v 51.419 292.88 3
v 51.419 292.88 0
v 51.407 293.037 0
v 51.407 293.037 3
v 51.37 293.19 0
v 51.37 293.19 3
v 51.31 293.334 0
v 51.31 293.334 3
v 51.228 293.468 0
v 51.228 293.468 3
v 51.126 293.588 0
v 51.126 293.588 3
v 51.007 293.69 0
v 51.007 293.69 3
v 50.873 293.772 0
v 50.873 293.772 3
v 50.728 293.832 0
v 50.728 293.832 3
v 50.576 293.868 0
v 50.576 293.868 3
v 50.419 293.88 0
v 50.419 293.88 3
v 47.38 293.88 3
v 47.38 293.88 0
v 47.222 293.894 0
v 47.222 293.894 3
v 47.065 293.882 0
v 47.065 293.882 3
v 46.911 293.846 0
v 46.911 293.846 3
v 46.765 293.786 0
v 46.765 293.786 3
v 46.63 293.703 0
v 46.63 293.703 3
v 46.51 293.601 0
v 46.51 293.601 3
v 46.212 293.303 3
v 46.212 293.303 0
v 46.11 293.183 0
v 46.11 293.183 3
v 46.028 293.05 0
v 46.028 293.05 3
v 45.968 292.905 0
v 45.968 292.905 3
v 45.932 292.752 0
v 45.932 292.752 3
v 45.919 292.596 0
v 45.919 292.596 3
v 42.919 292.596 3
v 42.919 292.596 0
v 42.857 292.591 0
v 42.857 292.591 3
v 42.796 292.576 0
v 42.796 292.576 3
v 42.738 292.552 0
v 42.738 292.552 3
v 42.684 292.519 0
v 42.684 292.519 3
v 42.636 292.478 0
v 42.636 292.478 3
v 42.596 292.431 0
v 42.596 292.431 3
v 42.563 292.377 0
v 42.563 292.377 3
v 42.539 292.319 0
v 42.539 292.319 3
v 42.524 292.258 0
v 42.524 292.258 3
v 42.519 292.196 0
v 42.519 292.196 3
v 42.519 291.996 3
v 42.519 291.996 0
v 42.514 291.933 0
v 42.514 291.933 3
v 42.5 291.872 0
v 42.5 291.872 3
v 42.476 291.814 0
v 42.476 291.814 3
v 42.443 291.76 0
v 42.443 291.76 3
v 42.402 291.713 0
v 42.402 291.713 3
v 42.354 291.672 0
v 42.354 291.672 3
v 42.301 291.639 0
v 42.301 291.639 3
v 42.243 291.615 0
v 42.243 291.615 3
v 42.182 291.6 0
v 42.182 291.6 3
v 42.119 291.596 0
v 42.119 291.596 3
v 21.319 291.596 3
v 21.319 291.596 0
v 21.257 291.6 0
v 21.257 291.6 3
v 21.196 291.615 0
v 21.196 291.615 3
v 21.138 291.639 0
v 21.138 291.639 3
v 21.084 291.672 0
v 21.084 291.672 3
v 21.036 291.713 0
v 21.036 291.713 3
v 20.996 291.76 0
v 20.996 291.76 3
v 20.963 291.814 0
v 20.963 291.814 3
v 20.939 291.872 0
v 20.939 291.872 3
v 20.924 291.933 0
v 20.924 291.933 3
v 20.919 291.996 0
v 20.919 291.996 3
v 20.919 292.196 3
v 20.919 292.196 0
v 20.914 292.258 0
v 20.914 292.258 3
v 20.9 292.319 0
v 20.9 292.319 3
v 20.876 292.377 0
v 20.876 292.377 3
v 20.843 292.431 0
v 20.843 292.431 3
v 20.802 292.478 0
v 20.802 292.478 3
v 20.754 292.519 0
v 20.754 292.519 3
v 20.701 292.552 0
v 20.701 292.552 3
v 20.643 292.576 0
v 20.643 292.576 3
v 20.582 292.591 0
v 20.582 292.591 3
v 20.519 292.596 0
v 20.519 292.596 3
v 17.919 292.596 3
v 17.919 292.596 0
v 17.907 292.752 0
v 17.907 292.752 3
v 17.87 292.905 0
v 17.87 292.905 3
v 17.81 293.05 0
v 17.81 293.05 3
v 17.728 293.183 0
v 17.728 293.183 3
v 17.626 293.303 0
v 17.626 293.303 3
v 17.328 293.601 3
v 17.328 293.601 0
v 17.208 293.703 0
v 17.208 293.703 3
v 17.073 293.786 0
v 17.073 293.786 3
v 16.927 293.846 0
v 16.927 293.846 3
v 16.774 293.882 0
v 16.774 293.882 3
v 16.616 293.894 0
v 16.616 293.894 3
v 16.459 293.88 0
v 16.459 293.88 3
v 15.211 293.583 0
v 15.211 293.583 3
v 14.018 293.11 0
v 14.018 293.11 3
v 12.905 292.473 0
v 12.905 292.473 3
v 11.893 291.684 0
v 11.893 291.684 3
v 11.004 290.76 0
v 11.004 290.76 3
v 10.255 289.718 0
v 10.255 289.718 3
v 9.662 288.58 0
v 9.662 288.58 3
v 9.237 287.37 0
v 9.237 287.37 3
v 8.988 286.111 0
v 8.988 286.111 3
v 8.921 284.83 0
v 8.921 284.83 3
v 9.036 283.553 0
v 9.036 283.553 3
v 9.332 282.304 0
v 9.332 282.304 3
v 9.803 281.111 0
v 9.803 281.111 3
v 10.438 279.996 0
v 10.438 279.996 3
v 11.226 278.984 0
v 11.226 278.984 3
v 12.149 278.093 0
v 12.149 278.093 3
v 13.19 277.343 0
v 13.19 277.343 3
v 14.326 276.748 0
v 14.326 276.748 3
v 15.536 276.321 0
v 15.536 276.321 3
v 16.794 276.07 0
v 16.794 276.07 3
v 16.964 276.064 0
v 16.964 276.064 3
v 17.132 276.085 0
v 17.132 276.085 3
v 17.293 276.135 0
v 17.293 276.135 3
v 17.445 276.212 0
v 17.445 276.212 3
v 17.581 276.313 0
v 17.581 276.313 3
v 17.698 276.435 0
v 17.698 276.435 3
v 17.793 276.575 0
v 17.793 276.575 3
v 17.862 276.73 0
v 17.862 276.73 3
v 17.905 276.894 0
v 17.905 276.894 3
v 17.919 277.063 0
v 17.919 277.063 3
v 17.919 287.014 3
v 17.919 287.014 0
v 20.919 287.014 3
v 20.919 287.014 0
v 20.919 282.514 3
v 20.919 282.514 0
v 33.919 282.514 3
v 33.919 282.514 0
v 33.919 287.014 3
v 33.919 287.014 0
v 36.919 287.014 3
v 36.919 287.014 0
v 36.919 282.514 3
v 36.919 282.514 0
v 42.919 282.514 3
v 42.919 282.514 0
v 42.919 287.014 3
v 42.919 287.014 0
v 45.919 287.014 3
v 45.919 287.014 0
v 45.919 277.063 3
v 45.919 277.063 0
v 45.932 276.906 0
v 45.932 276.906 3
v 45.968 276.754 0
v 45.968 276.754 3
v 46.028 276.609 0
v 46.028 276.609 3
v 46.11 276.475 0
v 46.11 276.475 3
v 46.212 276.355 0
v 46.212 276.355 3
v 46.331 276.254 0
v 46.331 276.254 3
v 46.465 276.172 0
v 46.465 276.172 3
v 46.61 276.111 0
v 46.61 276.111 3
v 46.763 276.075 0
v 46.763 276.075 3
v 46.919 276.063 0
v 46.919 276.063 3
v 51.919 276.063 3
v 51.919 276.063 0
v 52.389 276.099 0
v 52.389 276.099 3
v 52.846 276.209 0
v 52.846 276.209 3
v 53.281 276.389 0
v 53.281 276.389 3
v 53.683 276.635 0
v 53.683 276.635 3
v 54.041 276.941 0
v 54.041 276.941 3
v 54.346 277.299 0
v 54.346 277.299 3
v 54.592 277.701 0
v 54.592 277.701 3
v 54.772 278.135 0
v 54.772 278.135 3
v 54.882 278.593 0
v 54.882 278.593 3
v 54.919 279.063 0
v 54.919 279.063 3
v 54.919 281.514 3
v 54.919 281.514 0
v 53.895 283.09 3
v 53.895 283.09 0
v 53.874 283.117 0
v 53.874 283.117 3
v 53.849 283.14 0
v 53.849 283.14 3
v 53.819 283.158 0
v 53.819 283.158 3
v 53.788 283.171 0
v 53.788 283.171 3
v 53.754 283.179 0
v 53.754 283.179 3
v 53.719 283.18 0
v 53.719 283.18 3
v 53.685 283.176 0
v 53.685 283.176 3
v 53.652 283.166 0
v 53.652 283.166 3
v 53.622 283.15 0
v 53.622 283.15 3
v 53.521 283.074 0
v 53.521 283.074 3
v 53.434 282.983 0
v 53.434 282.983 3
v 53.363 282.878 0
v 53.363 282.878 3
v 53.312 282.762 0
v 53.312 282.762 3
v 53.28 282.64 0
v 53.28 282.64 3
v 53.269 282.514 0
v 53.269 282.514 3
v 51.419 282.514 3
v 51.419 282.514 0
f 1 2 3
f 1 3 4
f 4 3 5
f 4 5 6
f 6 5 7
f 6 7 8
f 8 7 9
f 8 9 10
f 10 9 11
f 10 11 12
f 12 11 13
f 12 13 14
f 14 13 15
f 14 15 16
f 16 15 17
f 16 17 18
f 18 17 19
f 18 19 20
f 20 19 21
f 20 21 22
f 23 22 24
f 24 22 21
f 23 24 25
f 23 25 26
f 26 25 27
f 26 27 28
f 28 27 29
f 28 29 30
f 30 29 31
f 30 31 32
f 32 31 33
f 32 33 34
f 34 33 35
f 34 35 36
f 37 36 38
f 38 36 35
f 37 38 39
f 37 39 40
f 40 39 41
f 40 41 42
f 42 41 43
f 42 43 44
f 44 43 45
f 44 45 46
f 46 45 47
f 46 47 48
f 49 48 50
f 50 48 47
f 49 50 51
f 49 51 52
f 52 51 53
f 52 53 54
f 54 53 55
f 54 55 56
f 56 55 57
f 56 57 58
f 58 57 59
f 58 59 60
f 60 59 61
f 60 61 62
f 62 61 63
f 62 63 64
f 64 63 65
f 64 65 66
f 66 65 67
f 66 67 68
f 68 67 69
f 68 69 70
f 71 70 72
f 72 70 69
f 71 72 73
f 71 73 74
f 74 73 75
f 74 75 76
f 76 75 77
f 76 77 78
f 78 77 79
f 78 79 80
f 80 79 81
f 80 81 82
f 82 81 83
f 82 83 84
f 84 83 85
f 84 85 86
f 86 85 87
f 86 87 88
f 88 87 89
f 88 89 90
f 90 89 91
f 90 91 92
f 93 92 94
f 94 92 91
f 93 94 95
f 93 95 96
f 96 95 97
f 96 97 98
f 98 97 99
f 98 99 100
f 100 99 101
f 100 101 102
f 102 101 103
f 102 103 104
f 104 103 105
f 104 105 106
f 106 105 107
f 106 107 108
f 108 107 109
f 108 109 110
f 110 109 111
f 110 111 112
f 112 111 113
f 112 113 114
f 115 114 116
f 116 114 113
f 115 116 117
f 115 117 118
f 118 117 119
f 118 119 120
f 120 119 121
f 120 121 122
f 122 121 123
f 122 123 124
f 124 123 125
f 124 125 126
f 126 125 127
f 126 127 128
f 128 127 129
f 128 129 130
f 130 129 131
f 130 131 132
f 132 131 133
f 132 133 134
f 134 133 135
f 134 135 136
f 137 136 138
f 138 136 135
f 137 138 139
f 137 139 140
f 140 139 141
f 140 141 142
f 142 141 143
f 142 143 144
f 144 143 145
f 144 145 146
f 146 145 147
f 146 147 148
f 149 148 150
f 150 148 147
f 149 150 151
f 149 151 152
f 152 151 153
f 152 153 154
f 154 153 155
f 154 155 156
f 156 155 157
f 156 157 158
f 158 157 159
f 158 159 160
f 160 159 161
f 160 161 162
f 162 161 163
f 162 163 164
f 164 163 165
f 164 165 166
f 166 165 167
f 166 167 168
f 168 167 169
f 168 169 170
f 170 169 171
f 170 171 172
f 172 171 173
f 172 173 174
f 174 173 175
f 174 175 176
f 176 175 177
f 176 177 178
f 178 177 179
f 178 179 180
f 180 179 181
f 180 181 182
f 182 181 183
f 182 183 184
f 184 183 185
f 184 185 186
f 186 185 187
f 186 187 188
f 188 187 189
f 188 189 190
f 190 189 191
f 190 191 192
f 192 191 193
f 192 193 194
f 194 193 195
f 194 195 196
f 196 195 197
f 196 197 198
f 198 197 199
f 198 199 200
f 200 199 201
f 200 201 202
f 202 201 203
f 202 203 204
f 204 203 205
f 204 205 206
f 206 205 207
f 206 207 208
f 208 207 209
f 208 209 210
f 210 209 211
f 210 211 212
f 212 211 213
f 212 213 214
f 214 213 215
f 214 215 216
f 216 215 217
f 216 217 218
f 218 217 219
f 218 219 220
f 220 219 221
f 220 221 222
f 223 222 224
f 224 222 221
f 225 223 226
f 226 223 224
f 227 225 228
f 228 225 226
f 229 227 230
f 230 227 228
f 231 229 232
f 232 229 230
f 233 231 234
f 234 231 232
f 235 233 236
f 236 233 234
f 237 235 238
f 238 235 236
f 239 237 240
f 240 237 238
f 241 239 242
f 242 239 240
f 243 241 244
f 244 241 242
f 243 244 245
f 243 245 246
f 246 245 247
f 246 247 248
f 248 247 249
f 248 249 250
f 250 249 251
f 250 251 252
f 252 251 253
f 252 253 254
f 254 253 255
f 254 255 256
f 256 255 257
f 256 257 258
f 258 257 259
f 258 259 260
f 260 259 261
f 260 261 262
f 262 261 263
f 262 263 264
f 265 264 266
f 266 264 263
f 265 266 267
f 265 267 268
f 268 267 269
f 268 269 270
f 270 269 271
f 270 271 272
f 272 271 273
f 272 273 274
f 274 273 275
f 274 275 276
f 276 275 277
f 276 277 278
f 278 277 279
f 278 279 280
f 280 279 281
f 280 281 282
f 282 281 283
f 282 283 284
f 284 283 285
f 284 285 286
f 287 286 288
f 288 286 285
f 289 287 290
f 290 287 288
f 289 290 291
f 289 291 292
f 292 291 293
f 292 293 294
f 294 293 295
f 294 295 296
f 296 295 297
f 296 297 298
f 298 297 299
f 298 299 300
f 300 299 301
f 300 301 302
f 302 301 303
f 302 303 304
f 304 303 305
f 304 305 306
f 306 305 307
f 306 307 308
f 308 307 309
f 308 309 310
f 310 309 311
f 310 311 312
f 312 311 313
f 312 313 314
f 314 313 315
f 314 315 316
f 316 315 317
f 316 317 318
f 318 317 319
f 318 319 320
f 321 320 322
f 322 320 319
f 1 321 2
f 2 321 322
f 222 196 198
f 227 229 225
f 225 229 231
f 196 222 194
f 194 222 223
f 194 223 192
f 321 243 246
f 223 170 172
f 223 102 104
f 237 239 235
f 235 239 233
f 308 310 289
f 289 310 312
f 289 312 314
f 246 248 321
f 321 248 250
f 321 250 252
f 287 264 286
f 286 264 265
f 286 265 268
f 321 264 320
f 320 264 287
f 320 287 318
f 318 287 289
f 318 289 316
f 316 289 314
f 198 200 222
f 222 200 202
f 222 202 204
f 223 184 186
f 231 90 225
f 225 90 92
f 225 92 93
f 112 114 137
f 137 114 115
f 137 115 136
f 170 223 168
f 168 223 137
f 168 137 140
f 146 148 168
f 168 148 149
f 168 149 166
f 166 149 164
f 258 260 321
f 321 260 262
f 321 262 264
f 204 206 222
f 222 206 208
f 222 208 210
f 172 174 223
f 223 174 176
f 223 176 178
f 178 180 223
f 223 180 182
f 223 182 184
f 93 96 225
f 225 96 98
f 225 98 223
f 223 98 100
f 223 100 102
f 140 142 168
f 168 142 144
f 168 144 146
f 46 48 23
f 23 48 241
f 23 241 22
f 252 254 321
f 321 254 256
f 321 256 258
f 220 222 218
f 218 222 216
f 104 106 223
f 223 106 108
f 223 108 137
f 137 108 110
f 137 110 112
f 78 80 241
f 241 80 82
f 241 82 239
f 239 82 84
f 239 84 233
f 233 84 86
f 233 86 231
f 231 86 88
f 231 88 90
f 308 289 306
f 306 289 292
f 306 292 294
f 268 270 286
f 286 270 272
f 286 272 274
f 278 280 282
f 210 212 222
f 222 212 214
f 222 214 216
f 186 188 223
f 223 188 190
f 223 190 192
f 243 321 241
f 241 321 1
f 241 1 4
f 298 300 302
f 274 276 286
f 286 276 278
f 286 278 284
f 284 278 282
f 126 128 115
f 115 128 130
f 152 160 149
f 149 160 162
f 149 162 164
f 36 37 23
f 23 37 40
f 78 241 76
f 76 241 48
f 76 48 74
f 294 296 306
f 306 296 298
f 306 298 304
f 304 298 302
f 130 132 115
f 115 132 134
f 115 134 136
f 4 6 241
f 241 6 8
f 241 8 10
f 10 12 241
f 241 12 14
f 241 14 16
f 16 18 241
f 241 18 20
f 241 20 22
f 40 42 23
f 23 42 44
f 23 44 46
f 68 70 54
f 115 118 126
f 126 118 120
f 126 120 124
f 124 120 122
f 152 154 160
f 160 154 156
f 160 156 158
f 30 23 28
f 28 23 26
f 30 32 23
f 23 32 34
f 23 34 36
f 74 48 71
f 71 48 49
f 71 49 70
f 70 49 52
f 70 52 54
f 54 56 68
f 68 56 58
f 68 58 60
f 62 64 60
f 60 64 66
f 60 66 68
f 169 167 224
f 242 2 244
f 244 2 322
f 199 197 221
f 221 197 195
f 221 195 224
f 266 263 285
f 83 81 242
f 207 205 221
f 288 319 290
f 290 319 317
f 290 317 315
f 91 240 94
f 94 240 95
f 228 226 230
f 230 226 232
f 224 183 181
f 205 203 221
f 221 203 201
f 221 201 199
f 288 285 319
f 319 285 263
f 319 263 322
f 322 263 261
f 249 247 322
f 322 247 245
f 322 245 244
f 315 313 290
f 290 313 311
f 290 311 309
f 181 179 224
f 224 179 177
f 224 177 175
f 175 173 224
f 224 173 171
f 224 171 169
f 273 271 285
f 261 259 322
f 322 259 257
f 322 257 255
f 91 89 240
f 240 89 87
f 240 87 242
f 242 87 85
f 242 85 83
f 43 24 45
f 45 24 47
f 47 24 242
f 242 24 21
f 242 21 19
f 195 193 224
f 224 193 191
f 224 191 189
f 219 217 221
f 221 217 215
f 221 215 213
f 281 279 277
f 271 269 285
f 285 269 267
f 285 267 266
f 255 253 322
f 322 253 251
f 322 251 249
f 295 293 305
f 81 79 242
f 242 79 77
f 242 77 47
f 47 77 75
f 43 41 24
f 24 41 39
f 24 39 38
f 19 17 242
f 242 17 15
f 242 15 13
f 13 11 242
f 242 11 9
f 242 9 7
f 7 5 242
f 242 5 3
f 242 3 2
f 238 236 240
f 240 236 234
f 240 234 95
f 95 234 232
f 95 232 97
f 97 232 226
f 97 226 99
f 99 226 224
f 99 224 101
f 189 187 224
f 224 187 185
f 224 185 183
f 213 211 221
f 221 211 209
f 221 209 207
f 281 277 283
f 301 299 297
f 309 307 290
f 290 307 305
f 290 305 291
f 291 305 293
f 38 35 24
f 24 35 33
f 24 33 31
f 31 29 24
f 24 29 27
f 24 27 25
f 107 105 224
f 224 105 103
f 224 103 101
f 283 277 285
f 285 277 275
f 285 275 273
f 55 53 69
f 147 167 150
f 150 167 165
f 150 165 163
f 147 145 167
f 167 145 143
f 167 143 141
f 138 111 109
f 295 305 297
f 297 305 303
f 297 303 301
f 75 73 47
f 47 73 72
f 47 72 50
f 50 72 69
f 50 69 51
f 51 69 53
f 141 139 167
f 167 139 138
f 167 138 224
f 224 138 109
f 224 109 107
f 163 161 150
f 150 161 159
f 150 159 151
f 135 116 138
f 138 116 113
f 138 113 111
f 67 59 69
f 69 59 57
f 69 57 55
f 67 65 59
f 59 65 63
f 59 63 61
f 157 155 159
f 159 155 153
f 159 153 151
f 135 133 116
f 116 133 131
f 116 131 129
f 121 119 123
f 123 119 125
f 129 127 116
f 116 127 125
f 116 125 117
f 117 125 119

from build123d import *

# Parameters (mm, degrees)
SALIENTE_EXTRUIR1_DEPTH = 3


with BuildPart() as part:
    # Model → Saliente-Extruir1 (new body)
    with BuildSketch(Plane.XY):
        with BuildLine():
            Line((47.379734173, 293.880494369), (50.419280292, 293.880494369))
            ThreePointArc((50.419280292, 293.880494369), (51.126387073, 293.58760115), (51.419280292, 292.880494369))
            Line((51.419280292, 292.880494369), (51.419280292, 282.514242123))
            Line((51.419280292, 282.514242123), (53.269280292, 282.514242123))
            ThreePointArc((53.269280292, 282.514242123), (53.363243785, 282.877719909), (53.621589895, 283.150121316))
            ThreePointArc((53.621589895, 283.150121316), (53.770849393, 283.175830273), (53.895329391, 283.089551201))
            Line((53.895329391, 283.089551201), (54.919280292, 281.514242123))
            Line((54.919280292, 281.514242123), (54.919280292, 279.062526812))
            ThreePointArc((54.919280292, 279.062526812), (54.040600635, 276.941206469), (51.919280292, 276.062526812))
            Line((51.919280292, 276.062526812), (46.919280292, 276.062526812))
            ThreePointArc((46.919280292, 276.062526812), (46.212173511, 276.355420031), (45.919280292, 277.062526812))
            Line((45.919280292, 277.062526812), (45.919280292, 287.014242123))
            Line((45.919280292, 287.014242123), (42.919280292, 287.014242123))
            Line((42.919280292, 287.014242123), (42.919280292, 282.514242123))
            Line((42.919280292, 282.514242123), (36.919280292, 282.514242123))
            Line((36.919280292, 282.514242123), (36.919280292, 287.014242123))
            Line((36.919280292, 287.014242123), (33.919280292, 287.014242123))
            Line((33.919280292, 287.014242123), (33.919280292, 282.514242123))
            Line((33.919280292, 282.514242123), (20.919280292, 282.514242123))
            Line((20.919280292, 282.514242123), (20.919280292, 287.014242123))
            Line((20.919280292, 287.014242123), (17.919280292, 287.014242123))
            Line((17.919280292, 287.014242123), (17.919280292, 277.062526812))
            ThreePointArc((17.919280292, 277.062526812), (17.58071812, 276.312526812), (16.794280292, 276.070370071))
            ThreePointArc((16.794280292, 276.070370071), (8.920876277, 284.83029571), (16.458826411, 293.880494369))
            ThreePointArc((16.458826411, 293.880494369), (16.927302549, 293.845714495), (17.328205845, 293.600855192))
            Line((17.328205845, 293.600855192), (17.626387073, 293.302673965))
            ThreePointArc((17.626387073, 293.302673965), (17.843159824, 292.978250616), (17.919280292, 292.595567183))
            Line((17.919280292, 292.595567183), (20.519280292, 292.595567183))
            ThreePointArc((20.519280292, 292.595567183), (20.802123004, 292.478409896), (20.919280292, 292.195567183))
            Line((20.919280292, 292.195567183), (20.919280292, 291.995567183))
            ThreePointArc((20.919280292, 291.995567183), (21.036437579, 291.712724471), (21.319280292, 291.595567183))
            Line((21.319280292, 291.595567183), (42.119280292, 291.595567183))
            ThreePointArc((42.119280292, 291.595567183), (42.402123004, 291.712724471), (42.519280292, 291.995567183))
            Line((42.519280292, 291.995567183), (42.519280292, 292.195567183))
            ThreePointArc((42.519280292, 292.195567183), (42.636437579, 292.478409896), (42.919280292, 292.595567183))
            Line((42.919280292, 292.595567183), (45.919280292, 292.595567183))
            ThreePointArc((45.919280292, 292.595567183), (45.995400759, 292.978250616), (46.212173511, 293.302673965))
            Line((46.212173511, 293.302673965), (46.510354738, 293.600855192))
            ThreePointArc((46.510354738, 293.600855192), (46.911258035, 293.845714495), (47.379734173, 293.880494369))
        make_face()
    extrude(amount=SALIENTE_EXTRUIR1_DEPTH)


solid = part.part
